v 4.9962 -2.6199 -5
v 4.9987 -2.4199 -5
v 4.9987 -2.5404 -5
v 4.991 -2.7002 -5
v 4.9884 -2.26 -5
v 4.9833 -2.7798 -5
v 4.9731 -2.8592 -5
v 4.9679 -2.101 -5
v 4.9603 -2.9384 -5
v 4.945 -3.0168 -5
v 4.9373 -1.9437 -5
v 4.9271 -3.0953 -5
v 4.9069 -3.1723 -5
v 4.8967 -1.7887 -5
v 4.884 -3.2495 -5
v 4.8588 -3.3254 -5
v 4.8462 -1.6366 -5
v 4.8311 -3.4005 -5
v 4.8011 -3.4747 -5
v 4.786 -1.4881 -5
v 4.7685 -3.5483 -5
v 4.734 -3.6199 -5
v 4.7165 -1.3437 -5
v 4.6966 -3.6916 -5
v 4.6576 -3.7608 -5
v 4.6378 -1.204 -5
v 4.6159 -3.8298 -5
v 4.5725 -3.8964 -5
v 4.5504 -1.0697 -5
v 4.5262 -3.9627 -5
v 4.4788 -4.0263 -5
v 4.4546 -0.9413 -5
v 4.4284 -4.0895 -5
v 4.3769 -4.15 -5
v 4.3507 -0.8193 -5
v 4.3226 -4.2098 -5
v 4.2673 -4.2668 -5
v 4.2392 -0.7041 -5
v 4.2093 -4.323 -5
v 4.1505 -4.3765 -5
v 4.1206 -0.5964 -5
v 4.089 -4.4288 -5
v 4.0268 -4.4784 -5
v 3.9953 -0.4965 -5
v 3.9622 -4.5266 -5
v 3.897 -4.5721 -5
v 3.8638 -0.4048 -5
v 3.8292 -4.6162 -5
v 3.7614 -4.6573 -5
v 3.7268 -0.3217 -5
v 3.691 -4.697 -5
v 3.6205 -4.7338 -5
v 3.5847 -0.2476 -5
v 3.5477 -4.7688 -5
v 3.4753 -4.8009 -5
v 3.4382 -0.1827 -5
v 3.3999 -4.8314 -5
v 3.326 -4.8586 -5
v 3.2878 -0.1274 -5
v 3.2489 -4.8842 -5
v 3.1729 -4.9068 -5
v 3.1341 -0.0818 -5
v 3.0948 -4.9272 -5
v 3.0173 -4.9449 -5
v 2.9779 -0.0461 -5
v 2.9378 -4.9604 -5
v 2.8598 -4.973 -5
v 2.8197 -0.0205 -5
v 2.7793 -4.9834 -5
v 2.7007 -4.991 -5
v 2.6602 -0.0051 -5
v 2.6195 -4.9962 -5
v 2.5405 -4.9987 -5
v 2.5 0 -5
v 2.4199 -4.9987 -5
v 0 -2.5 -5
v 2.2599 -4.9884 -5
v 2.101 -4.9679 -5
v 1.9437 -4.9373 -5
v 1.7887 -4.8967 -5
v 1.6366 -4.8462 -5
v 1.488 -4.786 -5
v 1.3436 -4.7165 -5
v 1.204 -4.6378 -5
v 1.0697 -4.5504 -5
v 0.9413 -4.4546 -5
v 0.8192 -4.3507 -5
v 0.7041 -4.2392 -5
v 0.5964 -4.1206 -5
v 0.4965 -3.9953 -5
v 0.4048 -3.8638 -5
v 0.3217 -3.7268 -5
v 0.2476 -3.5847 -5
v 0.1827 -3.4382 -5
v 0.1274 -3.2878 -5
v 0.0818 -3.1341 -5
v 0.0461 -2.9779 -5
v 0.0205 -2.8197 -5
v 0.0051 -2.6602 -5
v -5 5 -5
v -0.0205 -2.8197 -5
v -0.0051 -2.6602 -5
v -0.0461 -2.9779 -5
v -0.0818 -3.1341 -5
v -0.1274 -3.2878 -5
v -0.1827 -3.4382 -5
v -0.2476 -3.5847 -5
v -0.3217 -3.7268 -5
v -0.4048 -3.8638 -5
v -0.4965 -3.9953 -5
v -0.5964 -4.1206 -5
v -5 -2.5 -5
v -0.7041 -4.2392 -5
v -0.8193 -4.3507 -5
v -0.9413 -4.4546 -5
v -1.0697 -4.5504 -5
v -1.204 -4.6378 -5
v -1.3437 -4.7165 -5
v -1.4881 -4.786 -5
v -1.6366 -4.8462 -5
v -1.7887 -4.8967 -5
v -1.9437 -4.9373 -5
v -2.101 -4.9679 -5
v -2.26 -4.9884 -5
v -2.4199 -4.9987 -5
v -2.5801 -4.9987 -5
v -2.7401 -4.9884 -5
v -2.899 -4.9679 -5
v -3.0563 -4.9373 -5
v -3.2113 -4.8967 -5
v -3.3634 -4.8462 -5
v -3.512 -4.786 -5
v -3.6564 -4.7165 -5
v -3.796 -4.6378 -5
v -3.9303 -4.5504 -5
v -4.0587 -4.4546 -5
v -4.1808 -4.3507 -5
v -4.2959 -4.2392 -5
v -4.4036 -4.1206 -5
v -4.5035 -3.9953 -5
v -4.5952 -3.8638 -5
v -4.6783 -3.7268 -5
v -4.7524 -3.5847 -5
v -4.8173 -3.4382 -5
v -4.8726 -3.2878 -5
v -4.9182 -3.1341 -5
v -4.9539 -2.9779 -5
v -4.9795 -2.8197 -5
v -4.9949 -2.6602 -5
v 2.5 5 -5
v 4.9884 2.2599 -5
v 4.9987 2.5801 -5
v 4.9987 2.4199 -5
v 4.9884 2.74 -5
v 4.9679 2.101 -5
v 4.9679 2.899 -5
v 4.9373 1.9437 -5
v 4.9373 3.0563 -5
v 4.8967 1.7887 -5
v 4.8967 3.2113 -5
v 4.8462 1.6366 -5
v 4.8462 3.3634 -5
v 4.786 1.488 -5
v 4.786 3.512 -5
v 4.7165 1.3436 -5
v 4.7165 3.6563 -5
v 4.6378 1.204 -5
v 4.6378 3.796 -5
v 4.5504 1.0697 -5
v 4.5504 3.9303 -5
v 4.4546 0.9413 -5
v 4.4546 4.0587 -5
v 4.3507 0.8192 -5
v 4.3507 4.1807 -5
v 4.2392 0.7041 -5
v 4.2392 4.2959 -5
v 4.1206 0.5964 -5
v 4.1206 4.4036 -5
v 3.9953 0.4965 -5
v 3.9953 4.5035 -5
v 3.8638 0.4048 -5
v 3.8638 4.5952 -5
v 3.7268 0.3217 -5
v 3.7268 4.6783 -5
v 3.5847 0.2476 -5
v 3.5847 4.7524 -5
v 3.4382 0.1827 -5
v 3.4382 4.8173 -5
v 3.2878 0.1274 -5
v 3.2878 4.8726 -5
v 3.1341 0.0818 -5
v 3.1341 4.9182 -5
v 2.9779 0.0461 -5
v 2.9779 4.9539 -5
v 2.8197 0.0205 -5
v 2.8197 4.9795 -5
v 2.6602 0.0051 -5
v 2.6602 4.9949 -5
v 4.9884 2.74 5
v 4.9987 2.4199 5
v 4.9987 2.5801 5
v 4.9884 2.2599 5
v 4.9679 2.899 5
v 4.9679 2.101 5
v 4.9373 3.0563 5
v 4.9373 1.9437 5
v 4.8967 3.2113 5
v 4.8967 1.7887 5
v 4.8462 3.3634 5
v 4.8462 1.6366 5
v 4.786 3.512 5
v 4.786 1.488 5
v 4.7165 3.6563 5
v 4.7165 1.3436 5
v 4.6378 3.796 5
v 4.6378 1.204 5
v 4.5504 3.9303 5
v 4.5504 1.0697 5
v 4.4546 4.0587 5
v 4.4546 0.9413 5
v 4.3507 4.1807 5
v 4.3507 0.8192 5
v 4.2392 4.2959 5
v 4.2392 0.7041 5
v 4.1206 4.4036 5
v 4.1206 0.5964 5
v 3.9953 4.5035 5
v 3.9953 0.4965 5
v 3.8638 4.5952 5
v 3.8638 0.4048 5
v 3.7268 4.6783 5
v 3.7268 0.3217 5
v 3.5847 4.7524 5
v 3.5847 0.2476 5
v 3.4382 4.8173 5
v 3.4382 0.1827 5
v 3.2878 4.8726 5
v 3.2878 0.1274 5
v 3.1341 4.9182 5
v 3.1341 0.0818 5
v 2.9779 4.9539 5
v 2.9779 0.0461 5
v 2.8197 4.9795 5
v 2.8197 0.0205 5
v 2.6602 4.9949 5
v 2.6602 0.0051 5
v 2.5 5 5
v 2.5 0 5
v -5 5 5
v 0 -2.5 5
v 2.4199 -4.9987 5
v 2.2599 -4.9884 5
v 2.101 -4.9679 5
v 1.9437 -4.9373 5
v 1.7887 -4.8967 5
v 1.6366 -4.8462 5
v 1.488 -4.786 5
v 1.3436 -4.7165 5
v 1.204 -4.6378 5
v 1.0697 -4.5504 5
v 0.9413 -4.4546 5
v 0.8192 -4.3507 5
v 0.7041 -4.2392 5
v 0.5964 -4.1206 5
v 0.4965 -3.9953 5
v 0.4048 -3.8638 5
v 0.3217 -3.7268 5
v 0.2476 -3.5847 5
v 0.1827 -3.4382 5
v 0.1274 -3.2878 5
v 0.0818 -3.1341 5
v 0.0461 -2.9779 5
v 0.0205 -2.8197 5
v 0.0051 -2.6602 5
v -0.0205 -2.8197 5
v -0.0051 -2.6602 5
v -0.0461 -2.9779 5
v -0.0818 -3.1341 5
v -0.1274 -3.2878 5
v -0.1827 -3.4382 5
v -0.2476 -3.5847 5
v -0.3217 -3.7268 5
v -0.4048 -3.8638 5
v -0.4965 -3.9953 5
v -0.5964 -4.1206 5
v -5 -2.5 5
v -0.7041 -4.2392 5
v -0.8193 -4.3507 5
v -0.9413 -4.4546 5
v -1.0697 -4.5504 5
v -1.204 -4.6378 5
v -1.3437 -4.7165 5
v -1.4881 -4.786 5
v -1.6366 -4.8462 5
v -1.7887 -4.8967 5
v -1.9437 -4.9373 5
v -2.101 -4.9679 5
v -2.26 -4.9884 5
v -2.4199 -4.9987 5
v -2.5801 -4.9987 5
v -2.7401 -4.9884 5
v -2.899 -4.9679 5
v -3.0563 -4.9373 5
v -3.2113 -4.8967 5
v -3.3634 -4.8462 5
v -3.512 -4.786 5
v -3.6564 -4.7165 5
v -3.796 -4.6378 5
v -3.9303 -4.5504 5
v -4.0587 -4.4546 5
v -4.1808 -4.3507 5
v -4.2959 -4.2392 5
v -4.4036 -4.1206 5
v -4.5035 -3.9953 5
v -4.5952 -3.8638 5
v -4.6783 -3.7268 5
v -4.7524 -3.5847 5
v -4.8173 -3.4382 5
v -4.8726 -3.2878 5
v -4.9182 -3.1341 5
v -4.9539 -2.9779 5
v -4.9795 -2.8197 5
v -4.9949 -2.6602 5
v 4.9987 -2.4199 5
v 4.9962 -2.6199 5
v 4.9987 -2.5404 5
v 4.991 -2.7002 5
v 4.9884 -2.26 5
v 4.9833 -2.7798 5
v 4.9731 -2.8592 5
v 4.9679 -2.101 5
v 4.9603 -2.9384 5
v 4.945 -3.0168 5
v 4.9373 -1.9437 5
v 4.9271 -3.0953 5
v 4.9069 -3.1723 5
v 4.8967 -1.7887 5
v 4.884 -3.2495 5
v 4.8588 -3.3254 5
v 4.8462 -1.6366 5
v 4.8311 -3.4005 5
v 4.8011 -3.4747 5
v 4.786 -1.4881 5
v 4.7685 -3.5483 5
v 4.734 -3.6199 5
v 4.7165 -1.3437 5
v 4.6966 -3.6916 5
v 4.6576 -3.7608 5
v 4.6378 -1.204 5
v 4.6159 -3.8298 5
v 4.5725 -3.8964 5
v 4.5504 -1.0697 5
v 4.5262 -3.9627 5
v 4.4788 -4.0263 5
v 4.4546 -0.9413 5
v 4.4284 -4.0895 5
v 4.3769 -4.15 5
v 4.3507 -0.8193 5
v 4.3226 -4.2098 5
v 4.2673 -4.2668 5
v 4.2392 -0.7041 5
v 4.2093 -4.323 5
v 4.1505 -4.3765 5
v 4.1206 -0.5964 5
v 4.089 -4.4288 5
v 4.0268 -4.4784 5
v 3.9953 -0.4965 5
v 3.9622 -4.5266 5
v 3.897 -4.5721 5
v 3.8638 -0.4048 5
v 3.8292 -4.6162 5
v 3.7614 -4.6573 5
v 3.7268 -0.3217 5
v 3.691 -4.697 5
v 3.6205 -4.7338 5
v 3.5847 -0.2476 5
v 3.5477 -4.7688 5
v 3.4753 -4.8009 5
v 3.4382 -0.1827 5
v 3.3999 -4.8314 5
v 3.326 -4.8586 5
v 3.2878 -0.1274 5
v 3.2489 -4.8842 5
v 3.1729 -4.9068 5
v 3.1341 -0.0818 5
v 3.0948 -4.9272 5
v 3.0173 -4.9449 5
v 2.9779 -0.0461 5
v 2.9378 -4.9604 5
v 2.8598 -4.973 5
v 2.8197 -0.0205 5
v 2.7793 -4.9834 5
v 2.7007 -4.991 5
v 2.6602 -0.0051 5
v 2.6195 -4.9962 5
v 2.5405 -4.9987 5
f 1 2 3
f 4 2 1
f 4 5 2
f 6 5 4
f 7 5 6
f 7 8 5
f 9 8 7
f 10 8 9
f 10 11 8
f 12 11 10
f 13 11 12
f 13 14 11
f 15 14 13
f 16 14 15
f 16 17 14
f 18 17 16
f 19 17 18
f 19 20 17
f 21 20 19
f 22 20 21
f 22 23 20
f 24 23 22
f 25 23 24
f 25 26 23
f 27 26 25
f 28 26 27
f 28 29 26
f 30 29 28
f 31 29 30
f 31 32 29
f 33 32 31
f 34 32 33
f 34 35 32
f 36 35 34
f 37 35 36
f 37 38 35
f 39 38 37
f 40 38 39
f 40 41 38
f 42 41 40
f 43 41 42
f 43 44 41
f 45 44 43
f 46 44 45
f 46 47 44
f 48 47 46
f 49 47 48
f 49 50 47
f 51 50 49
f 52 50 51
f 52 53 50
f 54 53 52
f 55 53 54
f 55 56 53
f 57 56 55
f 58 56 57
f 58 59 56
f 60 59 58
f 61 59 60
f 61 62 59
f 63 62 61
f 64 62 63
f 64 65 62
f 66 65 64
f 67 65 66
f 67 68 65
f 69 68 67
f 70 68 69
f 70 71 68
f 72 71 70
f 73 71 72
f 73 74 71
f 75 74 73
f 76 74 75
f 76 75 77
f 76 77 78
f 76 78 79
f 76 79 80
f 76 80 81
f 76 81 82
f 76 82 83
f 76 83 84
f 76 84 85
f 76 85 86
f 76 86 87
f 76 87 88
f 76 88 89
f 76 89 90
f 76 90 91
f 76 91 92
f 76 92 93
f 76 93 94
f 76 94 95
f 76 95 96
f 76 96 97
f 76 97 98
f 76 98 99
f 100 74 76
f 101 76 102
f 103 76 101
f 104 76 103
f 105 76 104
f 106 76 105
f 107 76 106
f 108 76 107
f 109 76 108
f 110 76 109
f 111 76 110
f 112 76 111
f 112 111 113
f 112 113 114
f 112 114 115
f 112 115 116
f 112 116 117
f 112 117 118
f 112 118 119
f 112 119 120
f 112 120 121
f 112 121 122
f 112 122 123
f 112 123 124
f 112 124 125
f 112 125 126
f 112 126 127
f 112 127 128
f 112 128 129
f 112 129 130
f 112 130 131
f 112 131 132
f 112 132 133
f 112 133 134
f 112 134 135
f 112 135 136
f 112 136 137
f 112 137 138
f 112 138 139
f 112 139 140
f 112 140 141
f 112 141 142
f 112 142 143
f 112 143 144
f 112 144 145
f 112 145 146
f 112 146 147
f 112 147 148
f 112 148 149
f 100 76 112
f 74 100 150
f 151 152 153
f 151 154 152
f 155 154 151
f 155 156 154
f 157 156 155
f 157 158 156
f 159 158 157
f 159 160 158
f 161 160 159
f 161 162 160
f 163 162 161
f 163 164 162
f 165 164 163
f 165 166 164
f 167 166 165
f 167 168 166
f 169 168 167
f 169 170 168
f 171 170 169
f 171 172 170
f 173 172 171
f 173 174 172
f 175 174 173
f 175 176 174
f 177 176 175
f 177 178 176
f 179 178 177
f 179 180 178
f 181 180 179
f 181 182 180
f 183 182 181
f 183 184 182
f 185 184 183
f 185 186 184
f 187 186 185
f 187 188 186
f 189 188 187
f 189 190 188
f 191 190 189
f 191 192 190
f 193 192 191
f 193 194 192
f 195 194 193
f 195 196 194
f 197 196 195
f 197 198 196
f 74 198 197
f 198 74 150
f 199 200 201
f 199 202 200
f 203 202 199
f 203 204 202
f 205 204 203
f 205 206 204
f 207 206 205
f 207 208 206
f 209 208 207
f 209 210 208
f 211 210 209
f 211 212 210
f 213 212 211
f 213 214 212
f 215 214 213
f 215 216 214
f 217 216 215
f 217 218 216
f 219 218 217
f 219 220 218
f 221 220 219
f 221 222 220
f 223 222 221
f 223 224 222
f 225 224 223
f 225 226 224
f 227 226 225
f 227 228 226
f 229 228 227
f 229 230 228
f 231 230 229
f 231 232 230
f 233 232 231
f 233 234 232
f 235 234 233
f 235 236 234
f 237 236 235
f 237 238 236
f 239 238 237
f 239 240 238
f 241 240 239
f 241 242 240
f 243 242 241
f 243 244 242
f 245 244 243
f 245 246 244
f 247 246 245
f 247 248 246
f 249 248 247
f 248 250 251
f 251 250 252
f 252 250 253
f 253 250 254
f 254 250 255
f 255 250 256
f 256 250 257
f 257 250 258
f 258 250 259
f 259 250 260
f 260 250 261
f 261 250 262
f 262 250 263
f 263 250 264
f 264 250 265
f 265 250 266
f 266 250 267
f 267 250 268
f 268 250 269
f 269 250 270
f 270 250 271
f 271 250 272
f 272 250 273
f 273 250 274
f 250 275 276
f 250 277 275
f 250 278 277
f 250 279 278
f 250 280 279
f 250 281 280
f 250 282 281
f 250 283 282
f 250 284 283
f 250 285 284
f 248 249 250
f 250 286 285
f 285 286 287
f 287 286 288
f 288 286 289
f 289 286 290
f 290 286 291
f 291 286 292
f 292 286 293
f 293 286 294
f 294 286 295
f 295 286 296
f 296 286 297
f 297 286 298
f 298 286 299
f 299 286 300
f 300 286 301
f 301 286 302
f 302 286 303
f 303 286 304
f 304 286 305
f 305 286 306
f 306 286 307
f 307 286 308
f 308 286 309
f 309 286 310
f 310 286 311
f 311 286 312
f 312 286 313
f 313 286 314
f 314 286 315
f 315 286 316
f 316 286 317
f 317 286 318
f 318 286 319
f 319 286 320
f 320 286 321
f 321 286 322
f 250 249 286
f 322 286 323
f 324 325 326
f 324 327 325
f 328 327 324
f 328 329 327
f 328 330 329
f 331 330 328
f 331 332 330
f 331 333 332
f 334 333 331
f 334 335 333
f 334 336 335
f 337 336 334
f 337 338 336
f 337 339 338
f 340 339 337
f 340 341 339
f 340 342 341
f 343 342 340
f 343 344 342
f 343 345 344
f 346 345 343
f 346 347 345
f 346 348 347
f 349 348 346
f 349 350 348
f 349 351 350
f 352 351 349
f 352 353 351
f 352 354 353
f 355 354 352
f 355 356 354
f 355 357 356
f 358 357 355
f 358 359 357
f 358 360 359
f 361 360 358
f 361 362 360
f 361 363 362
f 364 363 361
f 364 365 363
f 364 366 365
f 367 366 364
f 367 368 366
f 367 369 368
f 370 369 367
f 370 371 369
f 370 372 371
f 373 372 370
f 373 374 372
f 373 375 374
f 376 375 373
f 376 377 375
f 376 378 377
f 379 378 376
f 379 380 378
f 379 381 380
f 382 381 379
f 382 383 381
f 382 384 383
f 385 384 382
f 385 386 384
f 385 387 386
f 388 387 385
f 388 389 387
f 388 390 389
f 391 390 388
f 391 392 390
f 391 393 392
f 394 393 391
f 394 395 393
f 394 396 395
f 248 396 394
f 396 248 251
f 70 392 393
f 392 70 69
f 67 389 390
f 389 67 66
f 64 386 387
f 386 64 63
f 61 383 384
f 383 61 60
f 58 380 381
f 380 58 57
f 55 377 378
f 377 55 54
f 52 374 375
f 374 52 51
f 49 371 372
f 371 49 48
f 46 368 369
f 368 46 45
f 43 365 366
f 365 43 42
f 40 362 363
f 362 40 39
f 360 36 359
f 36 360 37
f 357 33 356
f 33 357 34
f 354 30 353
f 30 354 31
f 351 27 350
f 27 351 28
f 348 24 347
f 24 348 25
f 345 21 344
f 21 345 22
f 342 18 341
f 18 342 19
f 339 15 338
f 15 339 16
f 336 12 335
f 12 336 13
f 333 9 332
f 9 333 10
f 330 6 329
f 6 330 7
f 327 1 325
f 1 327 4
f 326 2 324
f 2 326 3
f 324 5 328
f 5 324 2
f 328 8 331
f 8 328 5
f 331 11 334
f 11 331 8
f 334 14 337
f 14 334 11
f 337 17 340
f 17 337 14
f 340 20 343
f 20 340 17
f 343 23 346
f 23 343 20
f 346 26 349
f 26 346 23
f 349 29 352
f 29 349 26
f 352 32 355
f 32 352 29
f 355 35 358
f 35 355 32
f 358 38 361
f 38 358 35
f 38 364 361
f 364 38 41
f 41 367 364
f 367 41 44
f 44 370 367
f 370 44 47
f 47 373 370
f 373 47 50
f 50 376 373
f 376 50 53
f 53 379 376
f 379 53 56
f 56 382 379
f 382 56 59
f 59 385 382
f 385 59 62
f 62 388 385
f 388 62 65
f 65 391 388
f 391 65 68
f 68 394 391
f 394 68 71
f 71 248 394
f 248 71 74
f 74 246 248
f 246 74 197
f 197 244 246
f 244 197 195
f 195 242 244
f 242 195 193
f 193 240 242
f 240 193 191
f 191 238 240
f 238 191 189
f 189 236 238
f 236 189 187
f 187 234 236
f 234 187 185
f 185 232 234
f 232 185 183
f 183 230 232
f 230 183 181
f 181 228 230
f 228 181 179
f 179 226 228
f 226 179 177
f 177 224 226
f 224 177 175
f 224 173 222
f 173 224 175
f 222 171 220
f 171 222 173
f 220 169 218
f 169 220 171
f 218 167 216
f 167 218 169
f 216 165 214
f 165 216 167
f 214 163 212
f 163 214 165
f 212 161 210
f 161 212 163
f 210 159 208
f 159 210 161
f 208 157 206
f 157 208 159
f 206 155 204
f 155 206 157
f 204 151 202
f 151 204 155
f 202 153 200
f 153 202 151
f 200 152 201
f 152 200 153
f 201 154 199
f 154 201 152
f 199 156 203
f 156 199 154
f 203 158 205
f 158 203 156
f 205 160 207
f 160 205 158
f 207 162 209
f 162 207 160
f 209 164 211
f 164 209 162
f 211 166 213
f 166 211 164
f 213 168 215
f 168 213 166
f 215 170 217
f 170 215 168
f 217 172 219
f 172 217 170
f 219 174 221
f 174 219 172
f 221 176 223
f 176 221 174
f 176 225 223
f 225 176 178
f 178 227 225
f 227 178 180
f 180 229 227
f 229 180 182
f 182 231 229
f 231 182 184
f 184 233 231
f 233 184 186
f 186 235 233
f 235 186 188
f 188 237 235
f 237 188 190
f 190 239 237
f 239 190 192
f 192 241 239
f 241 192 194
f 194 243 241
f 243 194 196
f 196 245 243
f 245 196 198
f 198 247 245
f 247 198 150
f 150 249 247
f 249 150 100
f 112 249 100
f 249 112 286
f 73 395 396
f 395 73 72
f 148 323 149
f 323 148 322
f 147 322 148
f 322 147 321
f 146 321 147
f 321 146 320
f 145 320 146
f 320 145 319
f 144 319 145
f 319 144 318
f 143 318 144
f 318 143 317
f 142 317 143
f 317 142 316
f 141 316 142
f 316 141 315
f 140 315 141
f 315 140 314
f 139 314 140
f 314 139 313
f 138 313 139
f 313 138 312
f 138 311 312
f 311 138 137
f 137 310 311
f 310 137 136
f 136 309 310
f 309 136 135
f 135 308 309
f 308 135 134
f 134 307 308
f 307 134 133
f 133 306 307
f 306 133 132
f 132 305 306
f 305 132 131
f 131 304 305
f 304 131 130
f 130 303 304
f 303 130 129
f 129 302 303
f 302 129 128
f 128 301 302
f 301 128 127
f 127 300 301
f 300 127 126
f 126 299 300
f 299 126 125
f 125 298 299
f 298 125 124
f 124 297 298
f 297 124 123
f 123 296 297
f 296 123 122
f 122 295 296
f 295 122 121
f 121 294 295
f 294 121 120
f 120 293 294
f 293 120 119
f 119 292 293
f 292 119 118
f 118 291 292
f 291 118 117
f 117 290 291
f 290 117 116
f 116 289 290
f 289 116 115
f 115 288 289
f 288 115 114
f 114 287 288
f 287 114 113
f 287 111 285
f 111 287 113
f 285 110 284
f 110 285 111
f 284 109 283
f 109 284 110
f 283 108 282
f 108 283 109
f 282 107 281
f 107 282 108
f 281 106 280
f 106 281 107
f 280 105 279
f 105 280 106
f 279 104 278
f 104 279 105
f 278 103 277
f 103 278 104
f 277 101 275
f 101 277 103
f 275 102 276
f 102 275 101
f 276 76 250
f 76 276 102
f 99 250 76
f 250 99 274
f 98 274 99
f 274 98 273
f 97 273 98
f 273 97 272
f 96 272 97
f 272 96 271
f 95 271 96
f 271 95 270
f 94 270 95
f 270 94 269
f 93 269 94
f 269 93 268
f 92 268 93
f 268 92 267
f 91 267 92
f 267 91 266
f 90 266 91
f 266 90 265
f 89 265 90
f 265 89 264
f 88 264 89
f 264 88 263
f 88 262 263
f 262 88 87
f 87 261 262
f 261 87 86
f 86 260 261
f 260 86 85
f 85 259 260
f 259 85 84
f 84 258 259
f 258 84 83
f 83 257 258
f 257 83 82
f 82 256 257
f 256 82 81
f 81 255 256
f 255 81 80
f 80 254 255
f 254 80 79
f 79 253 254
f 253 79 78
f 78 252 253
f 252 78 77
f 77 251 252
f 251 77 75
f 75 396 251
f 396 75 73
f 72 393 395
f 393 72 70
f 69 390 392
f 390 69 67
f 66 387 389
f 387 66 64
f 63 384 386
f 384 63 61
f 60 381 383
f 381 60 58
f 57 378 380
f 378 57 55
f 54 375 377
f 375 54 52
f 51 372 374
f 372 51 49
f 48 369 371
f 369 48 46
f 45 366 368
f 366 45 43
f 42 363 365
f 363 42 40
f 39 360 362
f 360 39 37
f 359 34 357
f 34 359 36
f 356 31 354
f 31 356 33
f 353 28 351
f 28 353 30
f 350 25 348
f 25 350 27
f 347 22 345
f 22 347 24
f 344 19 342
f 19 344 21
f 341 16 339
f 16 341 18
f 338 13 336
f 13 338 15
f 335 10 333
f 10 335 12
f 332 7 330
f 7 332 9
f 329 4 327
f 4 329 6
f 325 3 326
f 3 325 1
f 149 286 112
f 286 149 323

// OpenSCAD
// Generated by SolidPython 1.1.3 on 2025-02-20 04:03:41
$fn=50;


intersection() {
	translate(v = [-5.0000000000, -5.0000000000, -5.0000000000]) {
		linear_extrude(height = 10) {
			polygon(points = [[7.5000000000, 10.0000000000], [7.6601755500, 9.9948634819], [7.8196929042, 9.9794750346], [7.9778965718, 9.9538978925], [8.1341364598, 9.9182371576], [8.2877705451, 9.8726393675], [8.4381675122, 9.8172918934], [8.5847093478, 9.7524221698], [8.7267938800, 9.6782967603], [8.8638372530, 9.5952202622], [8.9952763262, 9.5035340547], [9.1205709883, 9.4036148959], [9.2392063765, 9.2958733752], [9.3506949927, 9.1807522257], [9.4545787062, 9.0587245046], [9.5504306365, 8.9302916503], [9.6378569075, 8.7959814208], [9.7164982659, 8.6563457256], [9.7860315575, 8.5119583578], [9.8461710551, 8.3634126361], [9.8966696326, 8.2113189666], [9.9373197805, 8.0563023349], [9.9679544585, 7.8989997376], [9.9884477824, 7.7400575648], [9.9987155405, 7.5801289439], [9.9987155405, 7.4198710561], [9.9884477824, 7.2599424352], [9.9679544585, 7.1010002624], [9.9373197805, 6.9436976651], [9.8966696326, 6.7886810334], [9.8461710551, 6.6365873639], [9.7860315575, 6.4880416422], [9.7164982659, 6.3436542744], [9.6378569075, 6.2040185792], [9.5504306365, 6.0697083497], [9.4545787062, 5.9412754954], [9.3506949927, 5.8192477743], [9.2392063765, 5.7041266248], [9.1205709883, 5.5963851041], [8.9952763262, 5.4964659453], [8.8638372530, 5.4047797378], [8.7267938800, 5.3217032397], [8.5847093478, 5.2475778302], [8.4381675122, 5.1827081066], [8.2877705451, 5.1273606325], [8.1341364598, 5.0817628424], [7.9778965718, 5.0461021075], [7.8196929042, 5.0205249654], [7.6601755500, 5.0051365181], [7.5000000000, 5.0000000000], [7.5000000000, 5.0000000000], [7.6601755500, 4.9948634819], [7.8196929042, 4.9794750346], [7.9778965718, 4.9538978925], [8.1341364598, 4.9182371576], [8.2877705451, 4.8726393675], [8.4381675122, 4.8172918934], [8.5847093478, 4.7524221698], [8.7267938800, 4.6782967603], [8.8638372530, 4.5952202622], [8.9952763262, 4.5035340547], [9.1205709883, 4.4036148959], [9.2392063765, 4.2958733752], [9.3506949927, 4.1807522257], [9.4545787062, 4.0587245046], [9.5504306365, 3.9302916503], [9.6378569075, 3.7959814208], [9.7164982659, 3.6563457256], [9.7860315575, 3.5119583578], [9.8461710551, 3.3634126361], [9.8966696326, 3.2113189666], [9.9373197805, 3.0563023349], [9.9679544585, 2.8989997376], [9.9884477824, 2.7400575648], [9.9987155405, 2.5801289439], [9.9987155405, 2.4198710561], [9.9884477824, 2.2599424352], [9.9679544585, 2.1010002624], [9.9373197805, 1.9436976651], [9.8966696326, 1.7886810334], [9.8461710551, 1.6365873639], [9.7860315575, 1.4880416422], [9.7164982659, 1.3436542744], [9.6378569075, 1.2040185792], [9.5504306365, 1.0697083497], [9.4545787062, 0.9412754954], [9.3506949927, 0.8192477743], [9.2392063765, 0.7041266248], [9.1205709883, 0.5963851041], [8.9952763262, 0.4964659453], [8.8638372530, 0.4047797378], [8.7267938800, 0.3217032397], [8.5847093478, 0.2475778302], [8.4381675122, 0.1827081066], [8.2877705451, 0.1273606325], [8.1341364598, 0.0817628424], [7.9778965718, 0.0461021075], [7.8196929042, 0.0205249654], [7.6601755500, 0.0051365181], [7.5000000000, 0.0000000000], [0, 0], [0, 10]]);
		}
	}
	rotate(a = -90, v = [0, 0, 1]) {
		translate(v = [-5.0000000000, -5.0000000000, -5.0000000000]) {
			linear_extrude(height = 10) {
				polygon(points = [[7.5000000000, 10.0000000000], [7.6601755500, 9.9948634819], [7.8196929042, 9.9794750346], [7.9778965718, 9.9538978925], [8.1341364598, 9.9182371576], [8.2877705451, 9.8726393675], [8.4381675122, 9.8172918934], [8.5847093478, 9.7524221698], [8.7267938800, 9.6782967603], [8.8638372530, 9.5952202622], [8.9952763262, 9.5035340547], [9.1205709883, 9.4036148959], [9.2392063765, 9.2958733752], [9.3506949927, 9.1807522257], [9.4545787062, 9.0587245046], [9.5504306365, 8.9302916503], [9.6378569075, 8.7959814208], [9.7164982659, 8.6563457256], [9.7860315575, 8.5119583578], [9.8461710551, 8.3634126361], [9.8966696326, 8.2113189666], [9.9373197805, 8.0563023349], [9.9679544585, 7.8989997376], [9.9884477824, 7.7400575648], [9.9987155405, 7.5801289439], [9.9987155405, 7.4198710561], [9.9884477824, 7.2599424352], [9.9679544585, 7.1010002624], [9.9373197805, 6.9436976651], [9.8966696326, 6.7886810334], [9.8461710551, 6.6365873639], [9.7860315575, 6.4880416422], [9.7164982659, 6.3436542744], [9.6378569075, 6.2040185792], [9.5504306365, 6.0697083497], [9.4545787062, 5.9412754954], [9.3506949927, 5.8192477743], [9.2392063765, 5.7041266248], [9.1205709883, 5.5963851041], [8.9952763262, 5.4964659453], [8.8638372530, 5.4047797378], [8.7267938800, 5.3217032397], [8.5847093478, 5.2475778302], [8.4381675122, 5.1827081066], [8.2877705451, 5.1273606325], [8.1341364598, 5.0817628424], [7.9778965718, 5.0461021075], [7.8196929042, 5.0205249654], [7.6601755500, 5.0051365181], [7.5000000000, 5.0000000000], [7.5000000000, 5.0000000000], [7.6601755500, 4.9948634819], [7.8196929042, 4.9794750346], [7.9778965718, 4.9538978925], [8.1341364598, 4.9182371576], [8.2877705451, 4.8726393675], [8.4381675122, 4.8172918934], [8.5847093478, 4.7524221698], [8.7267938800, 4.6782967603], [8.8638372530, 4.5952202622], [8.9952763262, 4.5035340547], [9.1205709883, 4.4036148959], [9.2392063765, 4.2958733752], [9.3506949927, 4.1807522257], [9.4545787062, 4.0587245046], [9.5504306365, 3.9302916503], [9.6378569075, 3.7959814208], [9.7164982659, 3.6563457256], [9.7860315575, 3.5119583578], [9.8461710551, 3.3634126361], [9.8966696326, 3.2113189666], [9.9373197805, 3.0563023349], [9.9679544585, 2.8989997376], [9.9884477824, 2.7400575648], [9.9987155405, 2.5801289439], [9.9987155405, 2.4198710561], [9.9884477824, 2.2599424352], [9.9679544585, 2.1010002624], [9.9373197805, 1.9436976651], [9.8966696326, 1.7886810334], [9.8461710551, 1.6365873639], [9.7860315575, 1.4880416422], [9.7164982659, 1.3436542744], [9.6378569075, 1.2040185792], [9.5504306365, 1.0697083497], [9.4545787062, 0.9412754954], [9.3506949927, 0.8192477743], [9.2392063765, 0.7041266248], [9.1205709883, 0.5963851041], [8.9952763262, 0.4964659453], [8.8638372530, 0.4047797378], [8.7267938800, 0.3217032397], [8.5847093478, 0.2475778302], [8.4381675122, 0.1827081066], [8.2877705451, 0.1273606325], [8.1341364598, 0.0817628424], [7.9778965718, 0.0461021075], [7.8196929042, 0.0205249654], [7.6601755500, 0.0051365181], [7.5000000000, 0.0000000000], [0, 0], [0, 10]]);
			}
		}
	}
}
/***********************************************
*********      SolidPython code:      **********
************************************************
 
from solid import *
from solid.utils import *

import math
import matplotlib.pyplot as plt
import subprocess
import os

class Hole:
    def __init__(self, x, y, radius):
        """
        Hole defined by:
        :param x: x dimension for center point of the circle as a ratio of letter height
        :param y: y dimension for center point of the circle as a ratio of letter height
        :param radius: radius of circle as a ratio of letter height
        """
        self.x = x
        self.y = y
        self.radius = radius

class Letter3D:
    def __init__(self, name, outer_shape_points, height, holes=None):
        """
        3D Letter defined by:
        :param name: name of letter
        :param outer_shape_points: points defining the outer shape of the letter
        :param heigh: size of cube that letter fits inside
        :param holes: list of Holes
        """
        self.name = name
        self.outer_shape_points = outer_shape_points
        self.holes = holes if holes is None else []
        self.height = height


    def generate(self):
        shape = polygon(points=self.outer_shape_points)

        if self.holes:
            for hole in self.holes:
                circle_hole = circle(r=hole.radius*self.height)
                positioned_hole = translate([hole.x*self.height, hole.y*self.height])(circle_hole)
                shape = difference()(shape, positioned_hole)
        
        shape_3d = linear_extrude(height=self.height)(shape)
        shape_3d = translate([-self.height/2, -self.height/2, -self.height/2])(shape_3d)
        return shape_3d
    
    def render(self):
        scad_render_to_file(self.shape, f"output/{self.name}.scad", file_header='$fn=50;')
        subprocess.run(["C:\\Program Files\\OpenSCAD\\openscad.exe", "-o", f"output\\{self.name}.stl", f"output\\{self.name}.scad"])


class TwoLetter3D:
    def __init__(self, height, letterA, letterA_face, letterB=None, letterB_face=None):
        self.height = height
        self.letterA = letterA
        self.letterB = letterB
        self.letterA_face = letterA_face
        self.letterB_face = letterB_face

    def call_letter_generation(self, letter):
        letter = letter.upper()
        function_name = f"letter_{letter}"
        func = globals().get(function_name)
        if func is None:
            raise ValueError(f"No letter generation function defined for letter '{letter}'.")
        else:
            print(func)
        return func(self.height)
    
    def rotate_object(self, face, shape):
        face = face.lower()
        if face == "z":
            return shape
        if face == "x":
            return rotate(a=90, v=[0,1,0])(shape)
        if face == "y":
            return rotate(a=-90, v=[0,0,1])(shape)
        else:
            raise ValueError("Face must be one of 'x', 'y', or 'z'.")

    def render(self):
        if self.letterA:
            letterA3D = self.call_letter_generation(self.letterA)
            letterA3D = self.rotate_object(self.letterA_face, letterA3D)

        if self.letterB:
            letterB3D = self.call_letter_generation(self.letterB)
            letterB3D = self.rotate_object(self.letterB_face, letterB3D)
            combined = intersection()(letterA3D, letterB3D)
            file_name = self.letterA + self.letterB
            scad_render_to_file(combined, f"output/{file_name}.scad", file_header='$fn=50;')
            subprocess.run(["C:\\Program Files\\OpenSCAD\\openscad.exe", "-o", f"output\\{file_name}.stl", f"output\\{file_name}.scad"])
            return
        else:
            file_name = self.letterA
            scad_render_to_file(letterA3D, f"output/{file_name}.scad", file_header='$fn=50;')
            subprocess.run(["C:\\Program Files\\OpenSCAD\\openscad.exe", "-o", f"output\\{file_name}.stl", f"output\\{file_name}.scad"])
    
                

def arc_points(radius, start_angle, end_angle, center=[0,0], num_points=50):
    angles = [start_angle + i * (end_angle - start_angle) / (num_points - 1)
              for i in range(num_points)]
    points = [
        (center[0] + radius * math.cos(math.radians(angle)),
         center[1] + radius * math.sin(math.radians(angle)))
        for angle in angles
    ]
    return points

def letter_A(h):
    shape_points = [(0,0), (h/2, h), (h, 0), (5/6*h, 0), (2/3*h, 1/3*h), (1/3*h, 1/3*h), (h/6, 0)]
    holes = [Hole(1/2, 7/12, 1/6)]
    A = Letter3D("A", shape_points, h, holes)
    return A.generate()

def letter_B(h):
    top_arc_points = arc_points(h/4, 90, -90, center=[3/4*h, 3/4*h])
    bottom_arc_points = arc_points(h/4, 90, -90, center=[3/4*h, h/4])
    other_points = [(0,0),(0,h)]

    shape_points = top_arc_points + bottom_arc_points + other_points
    holes = [Hole(1/2, 3/4, 1/6), Hole(1/2, 1/4, 1/6)]
    B = Letter3D("B", shape_points, h, holes)
    return B.generate()

def letter_C(h):
    outer_arc_points = arc_points(h/2, 30, 330, center=[h/2,h/2])
    inner_arc_points = arc_points(h/4, 30, 330, center=[h/2,h/2])[::-1]
    shape_points = outer_arc_points + inner_arc_points
    # print(shape_points)
    C = Letter3D("C", shape_points, h)
    return C.generate()


def letter_D(h):
    outer_arc_points = arc_points(h/2, 90, -90, center= [h/2, h/2])
    shape_points = outer_arc_points + [(0,0), (0, h)]
    holes = [Hole(1/2, 1/2, 1/6)]
    D = Letter3D("D", shape_points, h, holes)
    return D.generate()

def letter_E(h):
    points = [(0,0), (h,0), (h,h/5), (h/5,h/5), (h/5,2/5*h), (3/4*h,2/5*h), (3/4*h,3/5*h), (h/5,3/5*h), (h/5,4/5*h), (h,4/5*h), (h,h), (0,h)]
    E = Letter3D("E", points, h)
    return E.generate()

def letter_F(h):
    points = [(0,0), (h/5,0), (h/5,2/5*h), (3/4*h,2/5*h), (3/4*h,3/5*h), (h/5,3/5*h), (h/5,4/5*h), (h,4/5*h), (h,h), (0,h)]
    F = Letter3D("F", points, h)
    return F.generate()

if __name__ == "__main__":
    os.makedirs("output", exist_ok=True)

    letters = [chr(x) for x in range(ord('A'), ord('F') + 1)]
    for letter in letters:
        for other_letter in letters:
            shape = TwoLetter3D(10, letter, "z", other_letter, "y")
            shape.render()
 
 
************************************************/
